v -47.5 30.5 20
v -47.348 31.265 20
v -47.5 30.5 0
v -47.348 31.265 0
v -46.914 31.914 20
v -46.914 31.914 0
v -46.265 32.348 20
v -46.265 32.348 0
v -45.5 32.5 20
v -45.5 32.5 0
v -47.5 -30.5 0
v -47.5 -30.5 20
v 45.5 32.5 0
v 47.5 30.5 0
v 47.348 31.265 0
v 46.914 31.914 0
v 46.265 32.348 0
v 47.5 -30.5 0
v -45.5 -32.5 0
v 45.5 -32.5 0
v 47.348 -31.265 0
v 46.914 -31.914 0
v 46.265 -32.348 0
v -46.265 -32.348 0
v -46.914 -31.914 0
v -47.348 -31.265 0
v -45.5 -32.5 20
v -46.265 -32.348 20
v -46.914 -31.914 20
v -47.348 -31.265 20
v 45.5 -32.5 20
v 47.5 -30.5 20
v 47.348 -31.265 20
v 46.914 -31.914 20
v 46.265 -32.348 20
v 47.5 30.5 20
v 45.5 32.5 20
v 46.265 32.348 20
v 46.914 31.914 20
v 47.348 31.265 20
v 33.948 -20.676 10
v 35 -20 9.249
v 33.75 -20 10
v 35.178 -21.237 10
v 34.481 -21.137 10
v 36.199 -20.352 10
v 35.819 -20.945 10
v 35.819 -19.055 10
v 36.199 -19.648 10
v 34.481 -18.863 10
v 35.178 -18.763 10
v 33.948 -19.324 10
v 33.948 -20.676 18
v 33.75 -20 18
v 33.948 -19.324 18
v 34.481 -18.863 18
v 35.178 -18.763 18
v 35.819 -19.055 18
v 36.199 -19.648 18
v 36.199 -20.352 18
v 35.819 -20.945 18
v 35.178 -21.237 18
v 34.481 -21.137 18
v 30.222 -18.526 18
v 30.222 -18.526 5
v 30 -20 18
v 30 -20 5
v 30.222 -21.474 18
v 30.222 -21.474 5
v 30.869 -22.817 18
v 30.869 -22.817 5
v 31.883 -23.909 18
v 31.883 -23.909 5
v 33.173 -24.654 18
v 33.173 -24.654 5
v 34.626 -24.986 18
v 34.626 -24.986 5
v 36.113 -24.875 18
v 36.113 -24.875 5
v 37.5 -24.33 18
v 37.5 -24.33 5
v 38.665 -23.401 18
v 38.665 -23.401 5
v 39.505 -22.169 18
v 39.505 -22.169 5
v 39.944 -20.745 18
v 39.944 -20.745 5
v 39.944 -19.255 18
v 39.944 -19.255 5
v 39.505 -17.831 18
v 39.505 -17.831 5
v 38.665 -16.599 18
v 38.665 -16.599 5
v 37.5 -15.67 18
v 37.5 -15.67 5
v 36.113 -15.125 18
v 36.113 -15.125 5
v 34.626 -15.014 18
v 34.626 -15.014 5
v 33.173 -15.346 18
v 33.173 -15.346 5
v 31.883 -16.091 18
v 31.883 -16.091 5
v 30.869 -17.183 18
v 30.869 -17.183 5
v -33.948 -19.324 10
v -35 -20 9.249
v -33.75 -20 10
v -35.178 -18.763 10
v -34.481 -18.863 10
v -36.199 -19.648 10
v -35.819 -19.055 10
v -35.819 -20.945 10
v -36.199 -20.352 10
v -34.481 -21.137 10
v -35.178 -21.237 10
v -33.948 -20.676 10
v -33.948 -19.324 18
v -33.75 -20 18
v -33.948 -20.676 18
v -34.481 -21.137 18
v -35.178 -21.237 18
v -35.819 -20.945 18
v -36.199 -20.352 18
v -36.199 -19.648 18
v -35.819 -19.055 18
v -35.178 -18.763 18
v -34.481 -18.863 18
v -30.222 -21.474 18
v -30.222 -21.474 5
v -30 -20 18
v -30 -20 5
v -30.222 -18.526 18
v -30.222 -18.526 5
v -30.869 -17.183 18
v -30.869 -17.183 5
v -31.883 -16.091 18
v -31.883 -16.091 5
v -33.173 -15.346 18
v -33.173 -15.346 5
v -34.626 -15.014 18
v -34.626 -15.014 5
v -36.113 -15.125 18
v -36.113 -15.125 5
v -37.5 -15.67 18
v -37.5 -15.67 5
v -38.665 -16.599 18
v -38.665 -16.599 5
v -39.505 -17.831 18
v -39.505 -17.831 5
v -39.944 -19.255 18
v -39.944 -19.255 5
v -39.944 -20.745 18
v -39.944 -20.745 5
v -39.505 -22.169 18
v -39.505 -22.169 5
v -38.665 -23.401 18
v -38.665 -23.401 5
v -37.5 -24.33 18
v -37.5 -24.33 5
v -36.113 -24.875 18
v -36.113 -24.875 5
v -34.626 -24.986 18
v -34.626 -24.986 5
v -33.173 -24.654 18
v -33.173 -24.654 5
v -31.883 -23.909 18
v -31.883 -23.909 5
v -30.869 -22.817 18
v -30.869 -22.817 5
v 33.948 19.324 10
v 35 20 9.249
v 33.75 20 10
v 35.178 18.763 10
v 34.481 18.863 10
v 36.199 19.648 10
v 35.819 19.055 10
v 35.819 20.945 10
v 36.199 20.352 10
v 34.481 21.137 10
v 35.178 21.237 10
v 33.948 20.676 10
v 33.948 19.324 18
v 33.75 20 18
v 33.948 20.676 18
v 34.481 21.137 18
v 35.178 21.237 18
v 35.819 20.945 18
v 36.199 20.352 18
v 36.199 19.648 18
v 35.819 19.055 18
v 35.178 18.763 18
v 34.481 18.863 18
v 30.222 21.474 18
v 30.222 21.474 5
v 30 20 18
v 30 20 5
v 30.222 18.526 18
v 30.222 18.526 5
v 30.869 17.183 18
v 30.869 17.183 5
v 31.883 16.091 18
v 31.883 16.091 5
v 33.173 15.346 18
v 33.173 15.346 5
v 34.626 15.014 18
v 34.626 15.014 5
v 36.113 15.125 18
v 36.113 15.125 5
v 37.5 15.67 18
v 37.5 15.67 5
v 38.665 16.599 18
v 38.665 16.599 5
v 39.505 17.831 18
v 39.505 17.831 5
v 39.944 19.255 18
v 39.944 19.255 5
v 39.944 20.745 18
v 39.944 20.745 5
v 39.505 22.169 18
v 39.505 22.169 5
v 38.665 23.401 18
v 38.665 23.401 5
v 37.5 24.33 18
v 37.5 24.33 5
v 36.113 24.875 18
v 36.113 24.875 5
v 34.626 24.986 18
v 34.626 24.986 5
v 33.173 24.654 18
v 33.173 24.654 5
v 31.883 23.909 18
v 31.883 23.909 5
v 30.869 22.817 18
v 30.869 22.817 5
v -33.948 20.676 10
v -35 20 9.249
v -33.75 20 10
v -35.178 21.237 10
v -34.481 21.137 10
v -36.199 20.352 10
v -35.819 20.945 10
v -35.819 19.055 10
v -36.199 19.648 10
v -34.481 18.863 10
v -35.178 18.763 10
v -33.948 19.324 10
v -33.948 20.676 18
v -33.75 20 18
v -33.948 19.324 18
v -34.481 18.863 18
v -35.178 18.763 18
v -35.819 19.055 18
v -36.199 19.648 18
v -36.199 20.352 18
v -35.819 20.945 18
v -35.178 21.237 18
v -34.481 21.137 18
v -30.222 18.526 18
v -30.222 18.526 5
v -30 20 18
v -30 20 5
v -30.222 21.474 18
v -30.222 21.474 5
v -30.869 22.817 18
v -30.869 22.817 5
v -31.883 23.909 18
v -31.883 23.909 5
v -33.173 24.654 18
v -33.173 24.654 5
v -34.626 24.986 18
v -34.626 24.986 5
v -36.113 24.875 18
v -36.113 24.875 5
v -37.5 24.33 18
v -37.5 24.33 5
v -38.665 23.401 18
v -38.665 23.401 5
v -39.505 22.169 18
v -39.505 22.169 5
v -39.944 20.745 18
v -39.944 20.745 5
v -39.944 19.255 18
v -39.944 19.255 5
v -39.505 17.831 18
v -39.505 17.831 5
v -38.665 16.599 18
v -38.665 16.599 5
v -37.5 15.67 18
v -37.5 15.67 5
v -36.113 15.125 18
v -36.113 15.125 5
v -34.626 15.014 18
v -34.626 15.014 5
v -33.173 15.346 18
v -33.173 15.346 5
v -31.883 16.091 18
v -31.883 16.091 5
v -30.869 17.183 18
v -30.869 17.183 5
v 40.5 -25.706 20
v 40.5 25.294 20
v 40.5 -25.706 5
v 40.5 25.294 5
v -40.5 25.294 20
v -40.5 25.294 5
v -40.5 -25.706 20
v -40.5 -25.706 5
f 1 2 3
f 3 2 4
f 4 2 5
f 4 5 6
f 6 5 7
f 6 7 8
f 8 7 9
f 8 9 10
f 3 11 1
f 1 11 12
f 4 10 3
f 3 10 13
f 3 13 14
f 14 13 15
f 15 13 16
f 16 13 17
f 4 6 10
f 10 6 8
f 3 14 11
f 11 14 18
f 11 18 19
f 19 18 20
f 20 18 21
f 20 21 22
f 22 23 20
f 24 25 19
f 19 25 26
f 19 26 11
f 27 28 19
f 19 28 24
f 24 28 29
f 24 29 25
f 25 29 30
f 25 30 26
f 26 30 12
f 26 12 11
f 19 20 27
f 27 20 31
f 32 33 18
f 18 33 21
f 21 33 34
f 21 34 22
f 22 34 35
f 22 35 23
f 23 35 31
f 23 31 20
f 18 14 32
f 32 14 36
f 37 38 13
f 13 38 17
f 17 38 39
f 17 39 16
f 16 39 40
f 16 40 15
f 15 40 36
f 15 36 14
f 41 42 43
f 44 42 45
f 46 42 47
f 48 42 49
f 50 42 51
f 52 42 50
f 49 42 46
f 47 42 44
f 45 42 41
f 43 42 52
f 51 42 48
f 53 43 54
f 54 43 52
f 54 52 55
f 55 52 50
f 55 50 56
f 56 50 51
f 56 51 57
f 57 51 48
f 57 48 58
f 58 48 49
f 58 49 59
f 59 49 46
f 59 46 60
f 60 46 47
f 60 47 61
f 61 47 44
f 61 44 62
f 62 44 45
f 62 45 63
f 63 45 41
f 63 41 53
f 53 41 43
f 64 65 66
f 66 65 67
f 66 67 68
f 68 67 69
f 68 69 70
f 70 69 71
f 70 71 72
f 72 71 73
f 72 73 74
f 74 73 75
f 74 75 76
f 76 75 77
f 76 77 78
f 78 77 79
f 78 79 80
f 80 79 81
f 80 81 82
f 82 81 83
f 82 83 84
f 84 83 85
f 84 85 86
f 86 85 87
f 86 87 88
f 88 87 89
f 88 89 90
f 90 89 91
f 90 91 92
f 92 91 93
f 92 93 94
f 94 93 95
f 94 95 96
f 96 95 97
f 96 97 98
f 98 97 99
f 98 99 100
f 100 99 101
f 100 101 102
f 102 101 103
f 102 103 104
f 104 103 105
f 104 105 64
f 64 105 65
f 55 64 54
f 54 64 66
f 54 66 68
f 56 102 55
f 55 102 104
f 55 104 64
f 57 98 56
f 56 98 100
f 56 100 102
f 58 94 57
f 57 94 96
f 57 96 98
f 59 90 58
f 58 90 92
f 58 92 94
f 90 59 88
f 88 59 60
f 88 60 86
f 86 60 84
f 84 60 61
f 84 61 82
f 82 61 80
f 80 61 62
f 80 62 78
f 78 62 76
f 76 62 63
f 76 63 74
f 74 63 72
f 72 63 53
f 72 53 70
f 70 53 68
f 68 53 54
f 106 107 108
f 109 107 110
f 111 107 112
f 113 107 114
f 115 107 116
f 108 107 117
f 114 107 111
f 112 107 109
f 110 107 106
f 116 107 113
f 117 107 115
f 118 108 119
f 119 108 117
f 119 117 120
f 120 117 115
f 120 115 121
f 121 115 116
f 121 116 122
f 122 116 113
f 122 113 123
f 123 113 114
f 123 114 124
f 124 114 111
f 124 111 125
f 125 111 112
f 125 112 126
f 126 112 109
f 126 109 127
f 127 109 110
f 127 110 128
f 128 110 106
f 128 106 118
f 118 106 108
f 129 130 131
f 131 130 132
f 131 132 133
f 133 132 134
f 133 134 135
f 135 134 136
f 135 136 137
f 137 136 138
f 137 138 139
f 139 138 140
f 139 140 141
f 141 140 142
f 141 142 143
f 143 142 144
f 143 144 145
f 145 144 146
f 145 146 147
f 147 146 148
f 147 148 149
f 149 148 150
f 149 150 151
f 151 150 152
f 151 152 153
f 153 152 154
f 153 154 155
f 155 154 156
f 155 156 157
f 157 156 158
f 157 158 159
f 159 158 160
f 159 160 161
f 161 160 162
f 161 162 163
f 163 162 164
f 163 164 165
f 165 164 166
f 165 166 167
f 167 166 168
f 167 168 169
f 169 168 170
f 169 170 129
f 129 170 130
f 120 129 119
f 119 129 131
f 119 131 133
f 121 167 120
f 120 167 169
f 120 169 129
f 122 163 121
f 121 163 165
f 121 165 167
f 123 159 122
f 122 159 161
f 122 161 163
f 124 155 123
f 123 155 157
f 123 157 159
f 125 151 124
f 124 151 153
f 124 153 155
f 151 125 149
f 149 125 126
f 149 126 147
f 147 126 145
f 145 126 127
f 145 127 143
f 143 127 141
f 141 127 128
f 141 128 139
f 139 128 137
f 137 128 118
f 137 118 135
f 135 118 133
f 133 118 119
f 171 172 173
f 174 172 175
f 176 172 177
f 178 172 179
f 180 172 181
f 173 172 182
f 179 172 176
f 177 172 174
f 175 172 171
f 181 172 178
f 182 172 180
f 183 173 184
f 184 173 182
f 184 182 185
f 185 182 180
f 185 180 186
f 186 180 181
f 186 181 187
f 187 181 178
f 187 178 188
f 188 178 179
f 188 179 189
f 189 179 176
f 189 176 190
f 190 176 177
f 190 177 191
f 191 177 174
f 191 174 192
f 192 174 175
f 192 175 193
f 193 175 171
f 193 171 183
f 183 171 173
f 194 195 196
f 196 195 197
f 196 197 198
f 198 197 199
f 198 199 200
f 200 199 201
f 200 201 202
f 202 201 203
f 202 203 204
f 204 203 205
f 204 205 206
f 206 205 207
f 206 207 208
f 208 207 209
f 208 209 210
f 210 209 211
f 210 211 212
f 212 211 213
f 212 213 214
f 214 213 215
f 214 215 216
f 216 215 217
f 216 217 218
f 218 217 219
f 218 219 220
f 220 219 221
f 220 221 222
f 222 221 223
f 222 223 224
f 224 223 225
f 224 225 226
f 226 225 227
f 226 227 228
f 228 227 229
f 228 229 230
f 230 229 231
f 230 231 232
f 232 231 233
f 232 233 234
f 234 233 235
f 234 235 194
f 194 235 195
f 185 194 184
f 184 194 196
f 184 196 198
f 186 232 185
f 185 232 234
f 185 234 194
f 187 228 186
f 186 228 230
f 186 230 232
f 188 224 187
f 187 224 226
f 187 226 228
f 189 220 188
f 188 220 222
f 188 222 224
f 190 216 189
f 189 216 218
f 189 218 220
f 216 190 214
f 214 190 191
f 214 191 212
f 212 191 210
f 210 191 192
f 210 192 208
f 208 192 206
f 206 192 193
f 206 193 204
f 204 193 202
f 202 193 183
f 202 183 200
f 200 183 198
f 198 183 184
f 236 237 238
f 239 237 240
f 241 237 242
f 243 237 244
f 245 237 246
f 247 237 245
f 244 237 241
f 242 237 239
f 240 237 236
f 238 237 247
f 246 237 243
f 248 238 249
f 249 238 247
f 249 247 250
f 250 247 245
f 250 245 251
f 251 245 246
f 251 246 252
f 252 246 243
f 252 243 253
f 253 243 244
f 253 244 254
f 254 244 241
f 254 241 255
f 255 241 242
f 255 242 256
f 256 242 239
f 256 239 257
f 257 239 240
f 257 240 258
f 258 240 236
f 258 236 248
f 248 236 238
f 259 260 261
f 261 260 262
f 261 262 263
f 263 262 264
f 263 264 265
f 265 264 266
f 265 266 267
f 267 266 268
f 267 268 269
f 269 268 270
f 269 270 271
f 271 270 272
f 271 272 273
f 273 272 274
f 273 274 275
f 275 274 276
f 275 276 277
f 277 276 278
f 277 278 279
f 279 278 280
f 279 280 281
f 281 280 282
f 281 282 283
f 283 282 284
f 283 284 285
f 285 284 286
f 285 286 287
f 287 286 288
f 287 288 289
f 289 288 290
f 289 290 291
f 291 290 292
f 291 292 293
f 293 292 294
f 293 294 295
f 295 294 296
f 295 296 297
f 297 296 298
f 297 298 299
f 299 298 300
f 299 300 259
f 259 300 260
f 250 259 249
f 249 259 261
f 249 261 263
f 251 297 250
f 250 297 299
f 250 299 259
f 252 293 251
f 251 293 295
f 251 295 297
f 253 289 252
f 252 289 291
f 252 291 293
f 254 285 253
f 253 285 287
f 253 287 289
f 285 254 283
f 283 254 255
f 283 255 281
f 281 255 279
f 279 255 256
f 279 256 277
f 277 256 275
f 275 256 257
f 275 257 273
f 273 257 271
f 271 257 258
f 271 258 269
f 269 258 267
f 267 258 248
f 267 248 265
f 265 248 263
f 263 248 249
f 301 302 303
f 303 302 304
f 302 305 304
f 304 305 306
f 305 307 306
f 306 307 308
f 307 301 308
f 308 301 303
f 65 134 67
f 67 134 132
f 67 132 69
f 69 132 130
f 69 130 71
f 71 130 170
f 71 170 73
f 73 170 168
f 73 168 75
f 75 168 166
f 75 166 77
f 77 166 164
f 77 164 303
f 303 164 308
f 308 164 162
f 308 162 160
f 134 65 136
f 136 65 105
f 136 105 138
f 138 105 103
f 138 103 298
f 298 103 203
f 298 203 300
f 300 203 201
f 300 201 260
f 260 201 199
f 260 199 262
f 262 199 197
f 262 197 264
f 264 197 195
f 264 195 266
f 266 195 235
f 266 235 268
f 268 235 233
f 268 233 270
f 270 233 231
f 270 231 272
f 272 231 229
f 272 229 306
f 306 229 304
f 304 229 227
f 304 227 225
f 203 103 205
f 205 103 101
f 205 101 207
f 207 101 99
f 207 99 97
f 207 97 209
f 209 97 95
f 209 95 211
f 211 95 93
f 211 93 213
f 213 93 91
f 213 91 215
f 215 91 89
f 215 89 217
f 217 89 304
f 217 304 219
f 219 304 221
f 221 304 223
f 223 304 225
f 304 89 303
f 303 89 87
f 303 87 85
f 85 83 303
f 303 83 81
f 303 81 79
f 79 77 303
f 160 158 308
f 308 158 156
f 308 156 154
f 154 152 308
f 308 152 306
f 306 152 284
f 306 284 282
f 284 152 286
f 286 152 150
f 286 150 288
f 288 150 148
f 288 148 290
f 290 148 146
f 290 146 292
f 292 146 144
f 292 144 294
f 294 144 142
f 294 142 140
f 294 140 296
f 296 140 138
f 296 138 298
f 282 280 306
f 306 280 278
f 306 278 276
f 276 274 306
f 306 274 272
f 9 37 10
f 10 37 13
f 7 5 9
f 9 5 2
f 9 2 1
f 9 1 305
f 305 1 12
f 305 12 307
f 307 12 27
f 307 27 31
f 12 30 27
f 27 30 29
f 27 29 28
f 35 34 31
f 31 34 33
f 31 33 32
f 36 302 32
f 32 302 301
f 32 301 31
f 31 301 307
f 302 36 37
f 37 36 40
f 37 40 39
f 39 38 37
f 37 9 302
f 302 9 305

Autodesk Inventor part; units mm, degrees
ref_plane "XY Plane" through (0, 0, 0) normal (0, 0, 1) x (1, 0, 0)
sketch "Sketch1" plane through (0, 0, 0) normal (0, 0, 1) x (1, 0, 0)
  line L0 (-47.5, -32.5) -> (47.5, -32.5)
  line L1 (47.5, -32.5) -> (47.5, 32.5)
  line L2 (47.5, 32.5) -> (-47.5, 32.5)
  line L3 (-47.5, 32.5) -> (-47.5, -32.5)
  point P0 (0, 0)
  point P1 (0, 32.5)
  point P2 (-47.5, 0)
  dimension "d0" = 65
  dimension "d1" = 95
extrude "Extrusion1" add sketch "Sketch1" along normal blind 20
sketch "Sketch4" plane through (0, 0, 20) normal (0, 0, 1) x (1, 0, 0)
  line L0 (-40.5, -25.7056) -> (40.5, -25.7056)
  line L1 (40.5, -25.7056) -> (40.5, 25.2944)
  line L2 (40.5, 25.2944) -> (-40.5, 25.2944)
  line L3 (-40.5, 25.2944) -> (-40.5, -25.7056)
  point P0 (0, 0)
  point P1 (0, 25.2944)
  point P2 (-40.5, -0.2056)
  dimension "d18" = 51
  dimension "d19" = 81
extrude "Extrusion3" cut sketch "Sketch4" against normal blind 15
sketch "Sketch5" plane through (0, 0, 5) normal (0, 0, 1) x (1, 0, 0)
  circle A0 centre (-35, 20) radius 5
  point P0 (0, 0)
  dimension "d22" = 10
  dimension "d23" = 35
  dimension "d24" = 20
extrude "Extrusion4" add sketch "Sketch5" along normal blind 13
sketch "Sketch6" plane through (-35, 20, 18) normal (0, 0, 1) x (1, 0, 0)
  circle A0 centre (0, 0) radius 5 projected
  point P0 (35, -20)
hole "Hole2" at (-35, 20, 18) direction (0, 0, -1) diameter 2.5 depth 8 tip angle 118
mirror "Mirror3" about plane through (0, 0, 0) normal (1, 0, 0) of "Extrusion4", "Hole2"
mirror "Mirror4" about plane through (0, 0, 0) normal (0, 1, 0) of "Extrusion4", "Hole2", "Mirror3"
fillet "Fillet1" radius 2 4 edges at (47.5, 32.5, 10) (47.5, -32.5, 10) (-47.5, -32.5, 10) (-47.5, 32.5, 10)
properties part number "Case"
